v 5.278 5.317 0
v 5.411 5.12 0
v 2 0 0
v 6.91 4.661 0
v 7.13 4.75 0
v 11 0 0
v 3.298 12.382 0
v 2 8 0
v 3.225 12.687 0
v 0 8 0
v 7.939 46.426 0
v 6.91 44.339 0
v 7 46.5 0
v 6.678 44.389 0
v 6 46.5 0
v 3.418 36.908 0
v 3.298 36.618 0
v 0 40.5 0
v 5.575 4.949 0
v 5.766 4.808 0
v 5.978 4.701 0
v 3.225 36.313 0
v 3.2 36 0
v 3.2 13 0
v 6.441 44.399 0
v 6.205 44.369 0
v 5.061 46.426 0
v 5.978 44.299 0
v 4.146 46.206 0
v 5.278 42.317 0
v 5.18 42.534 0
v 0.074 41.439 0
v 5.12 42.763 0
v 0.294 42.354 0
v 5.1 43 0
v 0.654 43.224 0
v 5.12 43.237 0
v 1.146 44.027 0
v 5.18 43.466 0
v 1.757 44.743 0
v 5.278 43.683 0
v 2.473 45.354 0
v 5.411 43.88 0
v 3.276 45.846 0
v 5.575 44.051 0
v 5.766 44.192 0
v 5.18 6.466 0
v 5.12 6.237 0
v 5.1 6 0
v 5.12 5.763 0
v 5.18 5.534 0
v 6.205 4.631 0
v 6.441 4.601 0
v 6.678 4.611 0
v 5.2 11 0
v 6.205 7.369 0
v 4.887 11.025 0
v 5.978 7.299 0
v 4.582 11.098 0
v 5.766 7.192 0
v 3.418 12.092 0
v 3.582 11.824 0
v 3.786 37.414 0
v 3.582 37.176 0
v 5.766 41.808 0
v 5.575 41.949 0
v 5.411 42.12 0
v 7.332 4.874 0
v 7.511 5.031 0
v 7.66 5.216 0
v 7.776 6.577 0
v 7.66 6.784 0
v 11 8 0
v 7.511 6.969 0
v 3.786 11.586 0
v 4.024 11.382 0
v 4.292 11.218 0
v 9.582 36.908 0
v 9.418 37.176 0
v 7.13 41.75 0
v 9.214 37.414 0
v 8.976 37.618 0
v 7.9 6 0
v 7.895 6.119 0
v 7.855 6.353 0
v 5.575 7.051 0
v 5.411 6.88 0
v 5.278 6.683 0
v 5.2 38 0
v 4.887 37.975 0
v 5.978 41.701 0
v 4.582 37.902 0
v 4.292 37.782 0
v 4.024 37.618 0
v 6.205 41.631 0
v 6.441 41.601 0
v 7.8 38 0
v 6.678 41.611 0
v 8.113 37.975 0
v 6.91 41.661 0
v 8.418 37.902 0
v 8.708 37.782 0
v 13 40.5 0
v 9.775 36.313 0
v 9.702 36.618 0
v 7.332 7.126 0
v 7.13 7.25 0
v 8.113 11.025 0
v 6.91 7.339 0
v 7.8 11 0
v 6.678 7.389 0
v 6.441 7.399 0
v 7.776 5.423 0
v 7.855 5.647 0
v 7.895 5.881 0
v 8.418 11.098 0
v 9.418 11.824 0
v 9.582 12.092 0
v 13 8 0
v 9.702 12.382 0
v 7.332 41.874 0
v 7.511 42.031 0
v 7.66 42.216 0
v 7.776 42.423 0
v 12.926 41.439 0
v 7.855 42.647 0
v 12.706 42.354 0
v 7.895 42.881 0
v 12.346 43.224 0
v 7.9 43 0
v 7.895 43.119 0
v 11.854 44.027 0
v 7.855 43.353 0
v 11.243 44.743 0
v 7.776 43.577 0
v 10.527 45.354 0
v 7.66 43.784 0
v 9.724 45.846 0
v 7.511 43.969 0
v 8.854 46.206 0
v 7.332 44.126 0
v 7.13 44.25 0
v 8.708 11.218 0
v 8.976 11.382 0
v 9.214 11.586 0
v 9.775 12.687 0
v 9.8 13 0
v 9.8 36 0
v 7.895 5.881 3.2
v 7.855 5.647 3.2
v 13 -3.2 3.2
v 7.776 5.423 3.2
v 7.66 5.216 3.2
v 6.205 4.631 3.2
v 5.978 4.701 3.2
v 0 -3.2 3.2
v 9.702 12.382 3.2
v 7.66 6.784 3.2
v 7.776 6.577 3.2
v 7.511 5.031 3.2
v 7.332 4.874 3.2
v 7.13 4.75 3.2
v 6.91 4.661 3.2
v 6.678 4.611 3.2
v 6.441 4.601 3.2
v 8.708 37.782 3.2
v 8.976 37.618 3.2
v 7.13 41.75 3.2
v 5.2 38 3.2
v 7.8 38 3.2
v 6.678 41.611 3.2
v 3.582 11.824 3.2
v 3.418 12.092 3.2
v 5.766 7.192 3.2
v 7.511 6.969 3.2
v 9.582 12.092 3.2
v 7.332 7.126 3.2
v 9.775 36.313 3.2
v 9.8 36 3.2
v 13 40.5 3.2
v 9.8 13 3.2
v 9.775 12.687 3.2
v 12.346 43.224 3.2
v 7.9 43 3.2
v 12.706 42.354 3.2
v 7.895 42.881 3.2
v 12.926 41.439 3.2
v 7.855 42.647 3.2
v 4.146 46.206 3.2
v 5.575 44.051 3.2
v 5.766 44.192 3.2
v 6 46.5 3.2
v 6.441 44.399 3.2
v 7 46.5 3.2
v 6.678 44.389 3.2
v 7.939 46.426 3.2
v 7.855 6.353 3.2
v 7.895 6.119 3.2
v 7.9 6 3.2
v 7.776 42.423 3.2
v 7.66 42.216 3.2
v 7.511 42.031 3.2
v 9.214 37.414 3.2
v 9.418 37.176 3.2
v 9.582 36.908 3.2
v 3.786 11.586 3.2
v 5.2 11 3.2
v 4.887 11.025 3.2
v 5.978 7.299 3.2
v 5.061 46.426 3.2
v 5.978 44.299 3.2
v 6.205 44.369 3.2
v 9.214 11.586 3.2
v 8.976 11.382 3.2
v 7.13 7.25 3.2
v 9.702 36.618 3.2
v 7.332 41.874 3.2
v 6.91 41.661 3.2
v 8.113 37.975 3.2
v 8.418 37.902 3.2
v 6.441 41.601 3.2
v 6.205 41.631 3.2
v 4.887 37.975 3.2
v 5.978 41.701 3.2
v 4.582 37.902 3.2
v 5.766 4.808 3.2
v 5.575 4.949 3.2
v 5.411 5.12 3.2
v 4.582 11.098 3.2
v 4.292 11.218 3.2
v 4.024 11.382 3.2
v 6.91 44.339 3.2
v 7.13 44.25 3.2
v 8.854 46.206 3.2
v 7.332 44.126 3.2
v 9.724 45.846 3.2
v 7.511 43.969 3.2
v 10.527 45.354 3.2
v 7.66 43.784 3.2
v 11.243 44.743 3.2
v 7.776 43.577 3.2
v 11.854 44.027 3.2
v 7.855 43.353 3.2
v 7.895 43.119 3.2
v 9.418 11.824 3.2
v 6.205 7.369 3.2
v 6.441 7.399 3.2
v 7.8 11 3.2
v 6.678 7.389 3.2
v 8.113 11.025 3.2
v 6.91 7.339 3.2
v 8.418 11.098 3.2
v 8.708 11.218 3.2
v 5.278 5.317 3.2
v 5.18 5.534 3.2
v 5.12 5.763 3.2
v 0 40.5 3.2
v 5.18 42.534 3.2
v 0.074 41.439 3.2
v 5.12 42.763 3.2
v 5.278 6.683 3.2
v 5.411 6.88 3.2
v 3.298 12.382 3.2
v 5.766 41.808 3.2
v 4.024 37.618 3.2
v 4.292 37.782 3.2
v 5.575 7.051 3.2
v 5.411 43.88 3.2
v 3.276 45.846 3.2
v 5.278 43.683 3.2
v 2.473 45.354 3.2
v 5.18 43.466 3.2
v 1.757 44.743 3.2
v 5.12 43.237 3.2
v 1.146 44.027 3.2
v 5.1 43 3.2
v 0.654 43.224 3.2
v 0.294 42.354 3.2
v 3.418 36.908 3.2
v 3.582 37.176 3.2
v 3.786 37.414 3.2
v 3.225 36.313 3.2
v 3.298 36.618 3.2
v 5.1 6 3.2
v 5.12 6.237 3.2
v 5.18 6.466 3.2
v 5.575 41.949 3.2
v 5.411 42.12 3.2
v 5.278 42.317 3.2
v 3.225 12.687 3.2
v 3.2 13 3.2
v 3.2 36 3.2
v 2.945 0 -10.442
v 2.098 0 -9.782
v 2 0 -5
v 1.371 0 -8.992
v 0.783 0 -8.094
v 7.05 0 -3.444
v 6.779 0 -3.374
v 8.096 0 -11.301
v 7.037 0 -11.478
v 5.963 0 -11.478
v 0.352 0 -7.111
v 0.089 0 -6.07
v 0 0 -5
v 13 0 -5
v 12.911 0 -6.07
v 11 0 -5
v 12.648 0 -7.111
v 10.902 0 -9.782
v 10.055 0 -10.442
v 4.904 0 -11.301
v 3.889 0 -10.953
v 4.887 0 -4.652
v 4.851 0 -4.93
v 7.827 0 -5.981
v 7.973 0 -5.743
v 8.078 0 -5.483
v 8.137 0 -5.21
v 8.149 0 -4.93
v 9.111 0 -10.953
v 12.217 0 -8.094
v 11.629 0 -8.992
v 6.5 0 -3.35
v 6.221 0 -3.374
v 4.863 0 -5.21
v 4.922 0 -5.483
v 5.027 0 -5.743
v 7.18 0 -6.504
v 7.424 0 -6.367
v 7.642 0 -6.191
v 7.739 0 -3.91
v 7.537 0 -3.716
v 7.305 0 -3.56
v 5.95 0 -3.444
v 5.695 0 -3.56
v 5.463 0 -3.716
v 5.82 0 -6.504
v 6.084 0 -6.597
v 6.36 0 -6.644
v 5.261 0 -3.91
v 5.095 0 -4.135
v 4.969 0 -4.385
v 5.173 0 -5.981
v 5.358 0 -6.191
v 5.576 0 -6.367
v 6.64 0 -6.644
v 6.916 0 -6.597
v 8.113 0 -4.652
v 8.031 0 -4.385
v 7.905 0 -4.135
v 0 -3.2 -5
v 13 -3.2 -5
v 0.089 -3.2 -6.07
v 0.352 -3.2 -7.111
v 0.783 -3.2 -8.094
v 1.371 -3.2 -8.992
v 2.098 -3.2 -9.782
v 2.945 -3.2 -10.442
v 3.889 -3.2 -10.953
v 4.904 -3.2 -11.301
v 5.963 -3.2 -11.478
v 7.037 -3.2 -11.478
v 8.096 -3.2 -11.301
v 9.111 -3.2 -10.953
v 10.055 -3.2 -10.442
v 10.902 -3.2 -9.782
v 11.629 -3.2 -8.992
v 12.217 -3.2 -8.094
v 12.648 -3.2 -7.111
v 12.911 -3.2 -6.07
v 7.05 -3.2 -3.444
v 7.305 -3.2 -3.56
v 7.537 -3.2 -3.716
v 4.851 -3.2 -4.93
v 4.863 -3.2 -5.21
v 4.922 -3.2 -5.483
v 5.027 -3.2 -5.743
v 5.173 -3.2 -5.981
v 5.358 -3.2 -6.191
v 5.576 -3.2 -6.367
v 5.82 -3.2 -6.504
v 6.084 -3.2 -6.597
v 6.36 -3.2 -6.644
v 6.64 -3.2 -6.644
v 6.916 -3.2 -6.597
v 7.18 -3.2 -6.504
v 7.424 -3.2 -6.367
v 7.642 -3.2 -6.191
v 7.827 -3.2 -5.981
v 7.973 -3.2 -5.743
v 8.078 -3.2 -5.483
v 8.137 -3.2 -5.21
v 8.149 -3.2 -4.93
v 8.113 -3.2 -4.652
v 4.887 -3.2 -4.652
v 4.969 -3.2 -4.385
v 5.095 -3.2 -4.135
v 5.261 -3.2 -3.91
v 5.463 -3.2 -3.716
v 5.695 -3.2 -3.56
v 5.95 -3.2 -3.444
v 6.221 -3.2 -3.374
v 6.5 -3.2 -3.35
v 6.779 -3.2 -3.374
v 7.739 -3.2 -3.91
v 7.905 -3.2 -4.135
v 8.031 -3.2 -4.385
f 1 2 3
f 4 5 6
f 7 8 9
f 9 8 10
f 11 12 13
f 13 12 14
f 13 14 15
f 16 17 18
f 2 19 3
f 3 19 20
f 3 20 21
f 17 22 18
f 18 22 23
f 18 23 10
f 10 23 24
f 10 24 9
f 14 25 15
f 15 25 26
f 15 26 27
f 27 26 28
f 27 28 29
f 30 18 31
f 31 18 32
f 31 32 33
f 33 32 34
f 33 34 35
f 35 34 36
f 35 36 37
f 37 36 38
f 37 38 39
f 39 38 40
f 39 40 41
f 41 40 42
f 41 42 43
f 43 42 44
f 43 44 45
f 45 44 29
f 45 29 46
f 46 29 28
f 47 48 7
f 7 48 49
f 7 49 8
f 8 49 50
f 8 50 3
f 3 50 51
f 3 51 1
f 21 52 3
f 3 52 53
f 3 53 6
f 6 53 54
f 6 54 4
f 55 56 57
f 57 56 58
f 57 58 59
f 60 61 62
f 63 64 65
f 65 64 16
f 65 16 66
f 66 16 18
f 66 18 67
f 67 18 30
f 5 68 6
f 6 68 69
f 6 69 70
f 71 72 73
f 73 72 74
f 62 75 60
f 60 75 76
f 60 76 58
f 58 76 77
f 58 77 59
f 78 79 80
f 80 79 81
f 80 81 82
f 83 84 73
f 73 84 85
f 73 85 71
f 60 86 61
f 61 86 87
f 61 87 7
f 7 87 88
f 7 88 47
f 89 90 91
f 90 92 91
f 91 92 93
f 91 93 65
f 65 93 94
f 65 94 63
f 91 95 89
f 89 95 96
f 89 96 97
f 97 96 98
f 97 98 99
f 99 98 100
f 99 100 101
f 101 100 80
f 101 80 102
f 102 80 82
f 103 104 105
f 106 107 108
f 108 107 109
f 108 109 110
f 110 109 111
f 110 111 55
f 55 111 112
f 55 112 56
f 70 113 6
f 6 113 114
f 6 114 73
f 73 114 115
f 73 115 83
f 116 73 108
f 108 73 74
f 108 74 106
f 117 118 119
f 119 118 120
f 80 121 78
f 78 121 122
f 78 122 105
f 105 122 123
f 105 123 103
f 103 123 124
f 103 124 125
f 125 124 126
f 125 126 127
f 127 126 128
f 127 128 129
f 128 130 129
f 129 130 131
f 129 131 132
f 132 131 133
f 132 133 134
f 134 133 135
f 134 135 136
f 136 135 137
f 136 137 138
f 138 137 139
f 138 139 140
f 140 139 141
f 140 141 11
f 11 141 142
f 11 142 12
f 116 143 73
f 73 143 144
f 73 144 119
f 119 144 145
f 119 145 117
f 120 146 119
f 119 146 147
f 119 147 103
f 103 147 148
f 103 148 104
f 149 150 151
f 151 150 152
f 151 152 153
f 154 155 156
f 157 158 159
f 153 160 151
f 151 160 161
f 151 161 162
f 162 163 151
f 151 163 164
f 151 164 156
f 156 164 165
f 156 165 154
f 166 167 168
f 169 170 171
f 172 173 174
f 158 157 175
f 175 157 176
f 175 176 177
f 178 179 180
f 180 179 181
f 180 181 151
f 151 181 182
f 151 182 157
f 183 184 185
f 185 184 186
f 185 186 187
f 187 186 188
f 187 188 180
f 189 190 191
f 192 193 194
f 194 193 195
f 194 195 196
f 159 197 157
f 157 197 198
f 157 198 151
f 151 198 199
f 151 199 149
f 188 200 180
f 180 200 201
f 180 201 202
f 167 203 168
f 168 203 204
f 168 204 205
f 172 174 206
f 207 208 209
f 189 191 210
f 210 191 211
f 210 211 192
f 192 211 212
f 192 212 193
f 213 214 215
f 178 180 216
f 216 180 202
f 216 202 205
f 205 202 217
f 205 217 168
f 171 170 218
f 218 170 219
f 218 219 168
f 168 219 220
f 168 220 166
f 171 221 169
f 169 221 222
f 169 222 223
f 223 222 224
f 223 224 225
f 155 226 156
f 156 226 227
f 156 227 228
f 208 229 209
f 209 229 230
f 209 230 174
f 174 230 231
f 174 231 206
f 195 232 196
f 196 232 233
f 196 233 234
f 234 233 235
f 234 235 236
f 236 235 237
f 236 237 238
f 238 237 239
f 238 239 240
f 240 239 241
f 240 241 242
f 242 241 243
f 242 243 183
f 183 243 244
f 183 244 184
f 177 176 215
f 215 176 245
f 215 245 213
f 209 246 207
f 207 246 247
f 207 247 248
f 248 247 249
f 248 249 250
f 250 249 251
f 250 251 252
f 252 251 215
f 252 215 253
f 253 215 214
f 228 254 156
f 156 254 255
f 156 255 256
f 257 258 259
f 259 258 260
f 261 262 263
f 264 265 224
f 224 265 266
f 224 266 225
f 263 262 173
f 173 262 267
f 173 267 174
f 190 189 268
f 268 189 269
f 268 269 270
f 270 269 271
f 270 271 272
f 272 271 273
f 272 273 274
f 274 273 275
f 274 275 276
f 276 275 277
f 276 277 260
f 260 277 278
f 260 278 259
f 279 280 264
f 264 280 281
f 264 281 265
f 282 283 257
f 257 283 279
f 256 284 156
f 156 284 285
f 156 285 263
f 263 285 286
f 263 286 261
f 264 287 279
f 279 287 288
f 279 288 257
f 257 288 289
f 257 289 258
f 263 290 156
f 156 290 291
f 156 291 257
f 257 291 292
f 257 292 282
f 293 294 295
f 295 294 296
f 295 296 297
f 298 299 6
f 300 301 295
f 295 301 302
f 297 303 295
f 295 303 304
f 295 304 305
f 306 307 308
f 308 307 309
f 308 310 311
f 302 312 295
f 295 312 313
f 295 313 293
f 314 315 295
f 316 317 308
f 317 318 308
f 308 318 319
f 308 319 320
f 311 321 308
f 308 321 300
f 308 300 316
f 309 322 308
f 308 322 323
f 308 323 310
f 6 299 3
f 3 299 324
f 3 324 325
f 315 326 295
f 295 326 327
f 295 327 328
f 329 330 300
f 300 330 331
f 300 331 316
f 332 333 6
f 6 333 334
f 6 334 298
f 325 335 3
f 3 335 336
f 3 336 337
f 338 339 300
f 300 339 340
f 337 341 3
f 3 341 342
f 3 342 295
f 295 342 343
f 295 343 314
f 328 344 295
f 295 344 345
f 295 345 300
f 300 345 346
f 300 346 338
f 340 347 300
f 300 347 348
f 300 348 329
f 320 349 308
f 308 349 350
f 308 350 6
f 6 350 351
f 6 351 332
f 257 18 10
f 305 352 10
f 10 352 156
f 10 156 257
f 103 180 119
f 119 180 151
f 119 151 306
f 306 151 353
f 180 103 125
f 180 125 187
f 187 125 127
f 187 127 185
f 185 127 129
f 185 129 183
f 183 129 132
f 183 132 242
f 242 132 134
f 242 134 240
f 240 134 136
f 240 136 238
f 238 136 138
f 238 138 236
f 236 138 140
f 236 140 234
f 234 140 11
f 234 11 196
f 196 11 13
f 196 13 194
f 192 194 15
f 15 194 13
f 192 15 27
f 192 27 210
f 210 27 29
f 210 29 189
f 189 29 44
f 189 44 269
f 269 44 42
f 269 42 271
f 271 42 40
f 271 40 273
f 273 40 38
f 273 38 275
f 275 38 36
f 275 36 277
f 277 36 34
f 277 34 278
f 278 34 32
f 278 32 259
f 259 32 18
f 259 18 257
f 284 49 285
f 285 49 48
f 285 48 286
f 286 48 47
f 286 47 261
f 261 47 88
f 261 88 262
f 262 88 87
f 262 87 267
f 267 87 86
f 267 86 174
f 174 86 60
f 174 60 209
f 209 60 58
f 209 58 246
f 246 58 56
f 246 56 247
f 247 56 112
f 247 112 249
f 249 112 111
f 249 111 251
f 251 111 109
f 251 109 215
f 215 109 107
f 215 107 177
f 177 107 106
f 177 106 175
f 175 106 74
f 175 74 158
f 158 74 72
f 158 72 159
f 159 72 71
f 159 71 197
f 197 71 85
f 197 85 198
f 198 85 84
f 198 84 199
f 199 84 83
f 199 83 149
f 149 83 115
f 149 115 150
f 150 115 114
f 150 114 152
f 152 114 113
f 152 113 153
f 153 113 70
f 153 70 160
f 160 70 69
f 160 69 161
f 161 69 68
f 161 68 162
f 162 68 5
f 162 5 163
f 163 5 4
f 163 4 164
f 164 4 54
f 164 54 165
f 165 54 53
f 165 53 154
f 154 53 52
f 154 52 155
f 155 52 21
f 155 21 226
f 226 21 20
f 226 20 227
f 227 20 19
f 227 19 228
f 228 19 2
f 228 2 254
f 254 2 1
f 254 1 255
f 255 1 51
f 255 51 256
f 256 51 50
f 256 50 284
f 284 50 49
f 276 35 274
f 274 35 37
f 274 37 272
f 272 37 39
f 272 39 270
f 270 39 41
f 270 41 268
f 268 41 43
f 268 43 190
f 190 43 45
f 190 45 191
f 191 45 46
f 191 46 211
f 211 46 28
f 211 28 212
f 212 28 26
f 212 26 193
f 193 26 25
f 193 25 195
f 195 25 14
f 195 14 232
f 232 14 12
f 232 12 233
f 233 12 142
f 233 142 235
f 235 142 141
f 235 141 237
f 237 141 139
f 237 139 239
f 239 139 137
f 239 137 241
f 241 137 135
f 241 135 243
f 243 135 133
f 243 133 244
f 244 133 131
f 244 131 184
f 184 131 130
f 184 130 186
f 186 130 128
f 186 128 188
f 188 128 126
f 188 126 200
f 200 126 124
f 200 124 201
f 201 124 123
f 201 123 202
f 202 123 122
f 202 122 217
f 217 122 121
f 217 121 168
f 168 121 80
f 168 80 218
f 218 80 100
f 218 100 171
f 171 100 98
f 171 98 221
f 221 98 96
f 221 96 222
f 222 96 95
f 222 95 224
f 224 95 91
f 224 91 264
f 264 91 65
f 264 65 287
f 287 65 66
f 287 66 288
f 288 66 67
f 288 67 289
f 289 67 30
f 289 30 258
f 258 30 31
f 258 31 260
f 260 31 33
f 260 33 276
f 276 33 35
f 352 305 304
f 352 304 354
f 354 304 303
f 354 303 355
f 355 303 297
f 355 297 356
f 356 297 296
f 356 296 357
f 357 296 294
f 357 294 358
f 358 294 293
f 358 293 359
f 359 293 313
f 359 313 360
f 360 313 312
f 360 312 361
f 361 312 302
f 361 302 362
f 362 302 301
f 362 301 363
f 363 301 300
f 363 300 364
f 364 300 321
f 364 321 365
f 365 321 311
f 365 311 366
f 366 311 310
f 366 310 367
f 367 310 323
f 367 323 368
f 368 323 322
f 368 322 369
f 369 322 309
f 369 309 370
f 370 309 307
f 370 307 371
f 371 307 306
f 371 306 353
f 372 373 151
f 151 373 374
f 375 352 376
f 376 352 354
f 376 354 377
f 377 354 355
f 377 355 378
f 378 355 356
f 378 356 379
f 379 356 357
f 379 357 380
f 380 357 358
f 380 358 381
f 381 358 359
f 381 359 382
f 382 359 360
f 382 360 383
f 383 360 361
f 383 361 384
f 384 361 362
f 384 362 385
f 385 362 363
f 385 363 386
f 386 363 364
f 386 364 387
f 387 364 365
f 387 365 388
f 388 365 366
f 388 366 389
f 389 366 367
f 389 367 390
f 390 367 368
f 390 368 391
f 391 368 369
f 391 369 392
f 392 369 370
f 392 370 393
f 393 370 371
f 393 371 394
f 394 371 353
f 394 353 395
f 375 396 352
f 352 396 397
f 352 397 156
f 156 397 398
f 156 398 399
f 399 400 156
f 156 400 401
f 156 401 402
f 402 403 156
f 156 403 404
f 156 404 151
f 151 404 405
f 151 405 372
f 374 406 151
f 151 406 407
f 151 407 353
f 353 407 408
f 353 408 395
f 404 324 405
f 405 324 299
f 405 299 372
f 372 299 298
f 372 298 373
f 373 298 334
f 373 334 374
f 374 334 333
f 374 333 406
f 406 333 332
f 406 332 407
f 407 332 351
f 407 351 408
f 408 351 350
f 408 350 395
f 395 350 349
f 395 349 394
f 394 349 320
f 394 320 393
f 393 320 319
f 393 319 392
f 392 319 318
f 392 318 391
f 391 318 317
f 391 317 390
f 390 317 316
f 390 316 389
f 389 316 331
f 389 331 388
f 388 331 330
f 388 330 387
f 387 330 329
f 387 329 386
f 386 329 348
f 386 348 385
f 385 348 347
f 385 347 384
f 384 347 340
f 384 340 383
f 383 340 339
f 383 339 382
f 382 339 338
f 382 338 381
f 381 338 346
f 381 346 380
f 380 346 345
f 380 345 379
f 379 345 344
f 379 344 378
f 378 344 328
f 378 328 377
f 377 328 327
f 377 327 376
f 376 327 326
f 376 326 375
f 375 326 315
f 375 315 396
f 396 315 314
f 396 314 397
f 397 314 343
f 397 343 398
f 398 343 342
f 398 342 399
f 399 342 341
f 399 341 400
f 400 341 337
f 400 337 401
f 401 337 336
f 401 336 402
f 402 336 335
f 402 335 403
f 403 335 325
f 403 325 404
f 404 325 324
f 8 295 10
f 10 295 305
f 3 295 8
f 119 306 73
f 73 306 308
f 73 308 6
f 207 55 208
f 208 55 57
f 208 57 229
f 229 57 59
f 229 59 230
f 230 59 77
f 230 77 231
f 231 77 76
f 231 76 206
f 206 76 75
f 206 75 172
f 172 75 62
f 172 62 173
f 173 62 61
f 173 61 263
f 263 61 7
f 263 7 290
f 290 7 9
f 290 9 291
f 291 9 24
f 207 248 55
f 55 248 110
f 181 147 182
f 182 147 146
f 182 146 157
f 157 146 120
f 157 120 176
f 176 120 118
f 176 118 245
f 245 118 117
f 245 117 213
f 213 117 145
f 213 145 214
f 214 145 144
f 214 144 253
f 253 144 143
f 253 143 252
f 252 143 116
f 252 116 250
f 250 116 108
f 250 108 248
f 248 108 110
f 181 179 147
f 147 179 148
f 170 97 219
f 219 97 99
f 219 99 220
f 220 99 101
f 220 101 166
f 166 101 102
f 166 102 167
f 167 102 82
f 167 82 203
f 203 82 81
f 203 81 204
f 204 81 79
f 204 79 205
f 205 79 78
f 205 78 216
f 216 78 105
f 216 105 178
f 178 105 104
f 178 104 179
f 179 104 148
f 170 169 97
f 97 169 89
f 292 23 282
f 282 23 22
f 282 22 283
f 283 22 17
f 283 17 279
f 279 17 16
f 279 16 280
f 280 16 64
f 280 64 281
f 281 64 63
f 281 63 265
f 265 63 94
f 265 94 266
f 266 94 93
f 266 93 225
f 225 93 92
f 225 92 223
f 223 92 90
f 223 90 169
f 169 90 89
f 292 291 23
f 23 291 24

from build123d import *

# Parameters (mm, degrees)
SKETCH1_R           = 1.4
BOSS_EXTRUDE1_DEPTH = 3.2
SKETCH2_R           = 1.65
BOSS_EXTRUDE3_DEPTH = 3.2
BOSS_EXTRUDE4_DEPTH = 2
LPATTERN1_COUNT     = 2
LPATTERN1_PITCH     = 11
CUT_EXTRUDE1_DEPTH  = 50.633657935


with BuildPart() as part:
    # Sketch1 → Boss-Extrude1 (new body)
    with BuildSketch(Plane.XY):
        with BuildLine():
            Line((0, 0), (13, 0))
            Line((13, 0), (13, 40.5))
            ThreePointArc((13, 40.5), (11.242640687, 44.742640687), (7, 46.5))
            Line((7, 46.5), (6, 46.5))
            ThreePointArc((6, 46.5), (1.757359313, 44.742640687), (0, 40.5))
            Line((0, 40.5), (0, 0))
        make_face()
        with Locations((6.5, 6)):
            Circle(SKETCH1_R, mode=Mode.SUBTRACT)
        with Locations((6.5, 43)):
            Circle(SKETCH1_R, mode=Mode.SUBTRACT)
    extrude(amount=BOSS_EXTRUDE1_DEPTH)

    # Sketch2 → Boss-Extrude3 (add)
    with BuildSketch(Plane(origin=(0, 0, 0), x_dir=(1, 0, 0), z_dir=(0, 1, 0))):
        with BuildLine():
            Line((0, 5), (0, -3.2))
            Line((0, -3.2), (13, -3.2))
            Line((13, -3.2), (13, 5))
            ThreePointArc((13, 5), (6.5, 11.5), (0, 5))
        make_face()
        with Locations(Location((6.5, 5, 0), (0, 0, 270))):
            Circle(SKETCH2_R, mode=Mode.SUBTRACT)
    extrude(amount=-BOSS_EXTRUDE3_DEPTH)

    # Sketch3 → Boss-Extrude4 (add)
    with BuildSketch(Plane(origin=(0, 0, 0), x_dir=(0, 0, -1), z_dir=(1, 0, 0))):
        Polygon((0, 0), (5, 0), (0, 8), align=None)
    boss_extrude4 = extrude(amount=BOSS_EXTRUDE4_DEPTH)

    # LPattern1: Boss-Extrude4 ×2
    with Locations(*[(i * LPATTERN1_PITCH, 0, 0) for i in range(1, LPATTERN1_COUNT)]):
        add(boss_extrude4)

    # Sketch4 → Cut-Extrude1 (cut, through all)
    with BuildSketch(Plane.XY):
        with BuildLine():
            Line((5.2, 38), (7.8, 38))
            ThreePointArc((7.8, 38), (9.214213562, 37.414213562), (9.8, 36))
            Line((9.8, 36), (9.8, 13))
            ThreePointArc((9.8, 13), (9.214213562, 11.585786438), (7.8, 11))
            Line((7.8, 11), (5.2, 11))
            ThreePointArc((5.2, 11), (3.785786438, 11.585786438), (3.2, 13))
            Line((3.2, 13), (3.2, 36))
            ThreePointArc((3.2, 36), (3.785786438, 37.414213562), (5.2, 38))
        make_face()
    extrude(amount=CUT_EXTRUDE1_DEPTH, mode=Mode.SUBTRACT)


solid = part.part
